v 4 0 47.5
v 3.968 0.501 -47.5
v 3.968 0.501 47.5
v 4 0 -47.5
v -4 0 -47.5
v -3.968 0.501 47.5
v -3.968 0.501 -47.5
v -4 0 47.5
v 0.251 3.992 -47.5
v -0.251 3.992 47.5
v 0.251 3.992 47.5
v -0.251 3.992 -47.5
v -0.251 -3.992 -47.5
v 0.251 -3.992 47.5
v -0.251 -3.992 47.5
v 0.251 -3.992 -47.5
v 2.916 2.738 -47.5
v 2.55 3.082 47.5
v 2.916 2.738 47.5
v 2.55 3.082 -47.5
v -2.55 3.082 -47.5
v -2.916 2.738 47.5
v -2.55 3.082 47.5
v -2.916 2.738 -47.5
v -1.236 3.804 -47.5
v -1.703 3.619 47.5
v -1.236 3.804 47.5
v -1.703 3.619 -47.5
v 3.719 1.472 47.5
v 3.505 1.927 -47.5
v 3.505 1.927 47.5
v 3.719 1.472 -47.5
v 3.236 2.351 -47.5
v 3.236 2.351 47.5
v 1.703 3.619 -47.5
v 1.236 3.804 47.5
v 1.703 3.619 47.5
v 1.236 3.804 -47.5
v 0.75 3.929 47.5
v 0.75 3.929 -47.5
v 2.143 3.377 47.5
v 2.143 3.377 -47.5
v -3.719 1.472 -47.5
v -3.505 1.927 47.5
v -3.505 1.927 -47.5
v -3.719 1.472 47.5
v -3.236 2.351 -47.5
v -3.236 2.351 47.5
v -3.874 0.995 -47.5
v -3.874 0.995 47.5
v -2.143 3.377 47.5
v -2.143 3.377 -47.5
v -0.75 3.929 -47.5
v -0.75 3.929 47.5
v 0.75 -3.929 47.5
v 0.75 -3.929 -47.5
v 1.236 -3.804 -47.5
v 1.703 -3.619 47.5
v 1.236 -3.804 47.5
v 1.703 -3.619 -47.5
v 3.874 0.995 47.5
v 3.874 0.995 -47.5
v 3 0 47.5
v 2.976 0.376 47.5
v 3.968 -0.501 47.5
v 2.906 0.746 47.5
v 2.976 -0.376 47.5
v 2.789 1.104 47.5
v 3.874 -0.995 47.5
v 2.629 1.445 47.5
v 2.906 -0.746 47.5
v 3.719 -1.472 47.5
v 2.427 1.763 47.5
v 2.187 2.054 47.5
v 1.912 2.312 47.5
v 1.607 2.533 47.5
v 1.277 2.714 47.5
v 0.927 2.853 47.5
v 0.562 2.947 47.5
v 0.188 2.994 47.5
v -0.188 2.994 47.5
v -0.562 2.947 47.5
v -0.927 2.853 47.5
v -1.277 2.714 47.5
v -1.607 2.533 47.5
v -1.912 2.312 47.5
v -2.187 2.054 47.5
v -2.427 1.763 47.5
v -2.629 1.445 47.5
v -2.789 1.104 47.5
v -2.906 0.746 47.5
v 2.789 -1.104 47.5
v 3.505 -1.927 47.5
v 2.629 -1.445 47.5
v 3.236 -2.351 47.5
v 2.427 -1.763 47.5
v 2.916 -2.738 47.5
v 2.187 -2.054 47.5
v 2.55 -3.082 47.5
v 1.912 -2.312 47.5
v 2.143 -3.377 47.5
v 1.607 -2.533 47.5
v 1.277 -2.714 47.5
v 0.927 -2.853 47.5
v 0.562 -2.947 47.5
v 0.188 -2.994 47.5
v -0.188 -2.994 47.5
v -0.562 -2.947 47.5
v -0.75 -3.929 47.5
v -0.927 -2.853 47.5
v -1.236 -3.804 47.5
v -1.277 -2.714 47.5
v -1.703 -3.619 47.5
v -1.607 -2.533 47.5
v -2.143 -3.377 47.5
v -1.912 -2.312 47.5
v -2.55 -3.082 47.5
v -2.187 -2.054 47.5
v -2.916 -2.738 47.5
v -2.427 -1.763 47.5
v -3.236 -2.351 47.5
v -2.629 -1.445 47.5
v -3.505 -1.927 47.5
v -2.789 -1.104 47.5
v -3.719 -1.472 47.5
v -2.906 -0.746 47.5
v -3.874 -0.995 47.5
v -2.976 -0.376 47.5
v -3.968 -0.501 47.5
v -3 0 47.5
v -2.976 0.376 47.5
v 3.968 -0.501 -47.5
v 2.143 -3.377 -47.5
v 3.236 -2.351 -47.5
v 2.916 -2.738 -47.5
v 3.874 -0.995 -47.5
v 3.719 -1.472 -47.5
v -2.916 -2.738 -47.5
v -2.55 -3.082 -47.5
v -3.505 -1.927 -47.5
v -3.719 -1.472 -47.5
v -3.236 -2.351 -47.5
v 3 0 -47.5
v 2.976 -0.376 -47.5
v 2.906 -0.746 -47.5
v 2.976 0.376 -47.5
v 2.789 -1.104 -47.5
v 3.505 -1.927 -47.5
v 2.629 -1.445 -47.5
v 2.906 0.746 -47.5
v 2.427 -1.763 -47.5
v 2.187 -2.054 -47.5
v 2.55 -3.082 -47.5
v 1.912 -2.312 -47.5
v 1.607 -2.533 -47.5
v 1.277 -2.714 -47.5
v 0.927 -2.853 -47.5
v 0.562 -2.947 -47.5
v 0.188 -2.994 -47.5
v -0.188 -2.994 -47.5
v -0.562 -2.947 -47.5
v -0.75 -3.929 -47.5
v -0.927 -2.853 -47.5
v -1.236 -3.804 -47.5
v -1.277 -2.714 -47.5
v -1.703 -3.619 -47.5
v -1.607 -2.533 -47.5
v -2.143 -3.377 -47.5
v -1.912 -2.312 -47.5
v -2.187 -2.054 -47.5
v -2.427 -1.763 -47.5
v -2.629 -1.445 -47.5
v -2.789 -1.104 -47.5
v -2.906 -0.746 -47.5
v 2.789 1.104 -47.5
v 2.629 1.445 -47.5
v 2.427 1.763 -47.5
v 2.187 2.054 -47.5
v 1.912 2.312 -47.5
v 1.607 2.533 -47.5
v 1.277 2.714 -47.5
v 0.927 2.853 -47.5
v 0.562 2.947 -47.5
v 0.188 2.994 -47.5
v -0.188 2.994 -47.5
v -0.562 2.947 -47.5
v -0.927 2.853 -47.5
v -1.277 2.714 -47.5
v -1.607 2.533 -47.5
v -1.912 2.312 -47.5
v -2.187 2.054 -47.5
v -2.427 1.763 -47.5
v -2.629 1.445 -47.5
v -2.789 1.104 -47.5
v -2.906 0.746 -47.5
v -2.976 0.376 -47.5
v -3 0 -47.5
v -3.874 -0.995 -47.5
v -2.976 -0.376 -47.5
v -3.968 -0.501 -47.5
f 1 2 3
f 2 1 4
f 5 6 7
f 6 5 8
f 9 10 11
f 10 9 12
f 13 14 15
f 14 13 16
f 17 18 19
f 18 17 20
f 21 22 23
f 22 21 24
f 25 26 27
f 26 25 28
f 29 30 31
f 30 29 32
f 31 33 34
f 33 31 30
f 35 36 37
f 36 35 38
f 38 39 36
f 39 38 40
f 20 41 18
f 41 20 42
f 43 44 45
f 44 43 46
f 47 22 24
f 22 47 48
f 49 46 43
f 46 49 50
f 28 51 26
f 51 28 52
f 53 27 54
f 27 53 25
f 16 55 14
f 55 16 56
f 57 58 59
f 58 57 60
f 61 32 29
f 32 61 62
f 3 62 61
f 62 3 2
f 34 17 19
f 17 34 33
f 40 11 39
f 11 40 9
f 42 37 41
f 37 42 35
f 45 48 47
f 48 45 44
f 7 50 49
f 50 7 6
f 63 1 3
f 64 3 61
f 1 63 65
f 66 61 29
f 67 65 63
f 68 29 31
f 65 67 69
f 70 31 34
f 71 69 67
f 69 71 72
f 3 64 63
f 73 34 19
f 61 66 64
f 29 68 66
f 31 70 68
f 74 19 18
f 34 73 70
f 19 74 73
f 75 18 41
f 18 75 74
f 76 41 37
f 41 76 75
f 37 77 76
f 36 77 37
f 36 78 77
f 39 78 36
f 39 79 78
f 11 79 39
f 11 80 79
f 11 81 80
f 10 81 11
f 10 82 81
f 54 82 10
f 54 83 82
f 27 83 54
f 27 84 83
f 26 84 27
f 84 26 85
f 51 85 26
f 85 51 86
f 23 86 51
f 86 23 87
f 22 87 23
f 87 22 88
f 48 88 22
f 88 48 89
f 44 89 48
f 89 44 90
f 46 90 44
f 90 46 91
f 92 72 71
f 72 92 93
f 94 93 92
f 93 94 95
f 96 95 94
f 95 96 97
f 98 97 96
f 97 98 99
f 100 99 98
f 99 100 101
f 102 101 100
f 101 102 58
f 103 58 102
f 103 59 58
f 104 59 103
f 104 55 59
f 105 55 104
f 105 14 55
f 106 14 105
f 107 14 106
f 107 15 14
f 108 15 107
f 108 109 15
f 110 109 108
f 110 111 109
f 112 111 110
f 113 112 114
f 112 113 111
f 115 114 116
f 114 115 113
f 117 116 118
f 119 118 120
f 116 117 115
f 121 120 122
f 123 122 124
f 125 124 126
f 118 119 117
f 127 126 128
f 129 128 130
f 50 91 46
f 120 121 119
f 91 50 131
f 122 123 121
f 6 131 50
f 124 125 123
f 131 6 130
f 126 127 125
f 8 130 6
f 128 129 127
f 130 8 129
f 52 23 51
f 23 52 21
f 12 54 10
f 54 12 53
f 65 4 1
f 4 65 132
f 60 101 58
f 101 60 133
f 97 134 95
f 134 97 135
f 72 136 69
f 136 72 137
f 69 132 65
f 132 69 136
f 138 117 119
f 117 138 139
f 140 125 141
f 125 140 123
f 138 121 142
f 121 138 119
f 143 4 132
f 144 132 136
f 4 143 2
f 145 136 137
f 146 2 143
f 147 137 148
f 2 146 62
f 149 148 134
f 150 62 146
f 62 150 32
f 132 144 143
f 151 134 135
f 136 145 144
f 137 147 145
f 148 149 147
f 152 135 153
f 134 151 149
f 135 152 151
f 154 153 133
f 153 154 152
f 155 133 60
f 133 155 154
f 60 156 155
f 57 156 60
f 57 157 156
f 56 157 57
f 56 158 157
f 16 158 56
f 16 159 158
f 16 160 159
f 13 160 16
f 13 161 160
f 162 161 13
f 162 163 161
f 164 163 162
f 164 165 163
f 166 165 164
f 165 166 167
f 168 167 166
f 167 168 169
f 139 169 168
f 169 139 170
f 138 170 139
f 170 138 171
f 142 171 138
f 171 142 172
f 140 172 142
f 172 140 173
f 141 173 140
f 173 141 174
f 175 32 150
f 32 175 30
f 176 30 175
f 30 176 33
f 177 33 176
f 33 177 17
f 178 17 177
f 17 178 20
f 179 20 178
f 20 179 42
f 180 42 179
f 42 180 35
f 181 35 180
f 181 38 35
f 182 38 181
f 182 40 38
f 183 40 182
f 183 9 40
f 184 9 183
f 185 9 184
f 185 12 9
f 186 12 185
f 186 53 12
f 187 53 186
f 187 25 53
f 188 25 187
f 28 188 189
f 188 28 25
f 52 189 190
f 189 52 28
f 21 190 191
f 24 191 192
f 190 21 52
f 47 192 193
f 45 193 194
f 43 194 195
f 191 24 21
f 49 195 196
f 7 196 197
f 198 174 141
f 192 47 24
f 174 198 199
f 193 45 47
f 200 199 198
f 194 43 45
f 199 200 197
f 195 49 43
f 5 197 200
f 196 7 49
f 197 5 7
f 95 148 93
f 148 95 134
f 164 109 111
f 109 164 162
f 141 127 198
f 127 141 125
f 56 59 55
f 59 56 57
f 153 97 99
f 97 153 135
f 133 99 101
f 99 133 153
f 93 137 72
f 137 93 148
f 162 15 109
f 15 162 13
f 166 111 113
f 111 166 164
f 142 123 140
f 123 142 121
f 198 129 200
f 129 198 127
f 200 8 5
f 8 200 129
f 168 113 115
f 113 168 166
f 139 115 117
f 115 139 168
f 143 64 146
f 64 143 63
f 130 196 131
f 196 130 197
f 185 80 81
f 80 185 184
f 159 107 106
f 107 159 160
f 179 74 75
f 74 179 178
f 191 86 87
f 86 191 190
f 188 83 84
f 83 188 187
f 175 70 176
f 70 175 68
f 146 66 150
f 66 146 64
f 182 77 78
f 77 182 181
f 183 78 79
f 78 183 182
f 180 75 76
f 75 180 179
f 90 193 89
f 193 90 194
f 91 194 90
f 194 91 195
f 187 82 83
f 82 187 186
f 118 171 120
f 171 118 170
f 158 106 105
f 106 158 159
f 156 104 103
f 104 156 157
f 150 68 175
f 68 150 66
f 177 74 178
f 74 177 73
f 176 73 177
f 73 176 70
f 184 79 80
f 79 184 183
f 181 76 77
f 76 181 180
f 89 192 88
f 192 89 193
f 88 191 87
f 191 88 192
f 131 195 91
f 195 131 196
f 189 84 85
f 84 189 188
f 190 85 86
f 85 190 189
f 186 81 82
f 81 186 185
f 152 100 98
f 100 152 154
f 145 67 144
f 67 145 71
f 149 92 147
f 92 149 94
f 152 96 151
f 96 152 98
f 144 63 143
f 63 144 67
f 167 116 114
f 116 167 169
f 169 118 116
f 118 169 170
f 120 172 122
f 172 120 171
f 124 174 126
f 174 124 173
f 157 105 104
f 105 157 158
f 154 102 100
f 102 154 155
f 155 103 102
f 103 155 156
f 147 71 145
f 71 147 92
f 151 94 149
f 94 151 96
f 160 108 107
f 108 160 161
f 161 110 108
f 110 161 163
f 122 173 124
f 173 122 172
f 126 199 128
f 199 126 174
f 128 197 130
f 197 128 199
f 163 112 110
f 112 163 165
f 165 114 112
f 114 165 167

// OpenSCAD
$fn = 50;


difference() {
	union() {
		translate(v = [0, 0, -47.5000000000]) {
			cylinder(h = 95, r = 4.0000000000);
		}
	}
	union() {
		translate(v = [0, 0, -100.0000000000]) {
			cylinder(h = 200, r = 3);
		}
	}
}
